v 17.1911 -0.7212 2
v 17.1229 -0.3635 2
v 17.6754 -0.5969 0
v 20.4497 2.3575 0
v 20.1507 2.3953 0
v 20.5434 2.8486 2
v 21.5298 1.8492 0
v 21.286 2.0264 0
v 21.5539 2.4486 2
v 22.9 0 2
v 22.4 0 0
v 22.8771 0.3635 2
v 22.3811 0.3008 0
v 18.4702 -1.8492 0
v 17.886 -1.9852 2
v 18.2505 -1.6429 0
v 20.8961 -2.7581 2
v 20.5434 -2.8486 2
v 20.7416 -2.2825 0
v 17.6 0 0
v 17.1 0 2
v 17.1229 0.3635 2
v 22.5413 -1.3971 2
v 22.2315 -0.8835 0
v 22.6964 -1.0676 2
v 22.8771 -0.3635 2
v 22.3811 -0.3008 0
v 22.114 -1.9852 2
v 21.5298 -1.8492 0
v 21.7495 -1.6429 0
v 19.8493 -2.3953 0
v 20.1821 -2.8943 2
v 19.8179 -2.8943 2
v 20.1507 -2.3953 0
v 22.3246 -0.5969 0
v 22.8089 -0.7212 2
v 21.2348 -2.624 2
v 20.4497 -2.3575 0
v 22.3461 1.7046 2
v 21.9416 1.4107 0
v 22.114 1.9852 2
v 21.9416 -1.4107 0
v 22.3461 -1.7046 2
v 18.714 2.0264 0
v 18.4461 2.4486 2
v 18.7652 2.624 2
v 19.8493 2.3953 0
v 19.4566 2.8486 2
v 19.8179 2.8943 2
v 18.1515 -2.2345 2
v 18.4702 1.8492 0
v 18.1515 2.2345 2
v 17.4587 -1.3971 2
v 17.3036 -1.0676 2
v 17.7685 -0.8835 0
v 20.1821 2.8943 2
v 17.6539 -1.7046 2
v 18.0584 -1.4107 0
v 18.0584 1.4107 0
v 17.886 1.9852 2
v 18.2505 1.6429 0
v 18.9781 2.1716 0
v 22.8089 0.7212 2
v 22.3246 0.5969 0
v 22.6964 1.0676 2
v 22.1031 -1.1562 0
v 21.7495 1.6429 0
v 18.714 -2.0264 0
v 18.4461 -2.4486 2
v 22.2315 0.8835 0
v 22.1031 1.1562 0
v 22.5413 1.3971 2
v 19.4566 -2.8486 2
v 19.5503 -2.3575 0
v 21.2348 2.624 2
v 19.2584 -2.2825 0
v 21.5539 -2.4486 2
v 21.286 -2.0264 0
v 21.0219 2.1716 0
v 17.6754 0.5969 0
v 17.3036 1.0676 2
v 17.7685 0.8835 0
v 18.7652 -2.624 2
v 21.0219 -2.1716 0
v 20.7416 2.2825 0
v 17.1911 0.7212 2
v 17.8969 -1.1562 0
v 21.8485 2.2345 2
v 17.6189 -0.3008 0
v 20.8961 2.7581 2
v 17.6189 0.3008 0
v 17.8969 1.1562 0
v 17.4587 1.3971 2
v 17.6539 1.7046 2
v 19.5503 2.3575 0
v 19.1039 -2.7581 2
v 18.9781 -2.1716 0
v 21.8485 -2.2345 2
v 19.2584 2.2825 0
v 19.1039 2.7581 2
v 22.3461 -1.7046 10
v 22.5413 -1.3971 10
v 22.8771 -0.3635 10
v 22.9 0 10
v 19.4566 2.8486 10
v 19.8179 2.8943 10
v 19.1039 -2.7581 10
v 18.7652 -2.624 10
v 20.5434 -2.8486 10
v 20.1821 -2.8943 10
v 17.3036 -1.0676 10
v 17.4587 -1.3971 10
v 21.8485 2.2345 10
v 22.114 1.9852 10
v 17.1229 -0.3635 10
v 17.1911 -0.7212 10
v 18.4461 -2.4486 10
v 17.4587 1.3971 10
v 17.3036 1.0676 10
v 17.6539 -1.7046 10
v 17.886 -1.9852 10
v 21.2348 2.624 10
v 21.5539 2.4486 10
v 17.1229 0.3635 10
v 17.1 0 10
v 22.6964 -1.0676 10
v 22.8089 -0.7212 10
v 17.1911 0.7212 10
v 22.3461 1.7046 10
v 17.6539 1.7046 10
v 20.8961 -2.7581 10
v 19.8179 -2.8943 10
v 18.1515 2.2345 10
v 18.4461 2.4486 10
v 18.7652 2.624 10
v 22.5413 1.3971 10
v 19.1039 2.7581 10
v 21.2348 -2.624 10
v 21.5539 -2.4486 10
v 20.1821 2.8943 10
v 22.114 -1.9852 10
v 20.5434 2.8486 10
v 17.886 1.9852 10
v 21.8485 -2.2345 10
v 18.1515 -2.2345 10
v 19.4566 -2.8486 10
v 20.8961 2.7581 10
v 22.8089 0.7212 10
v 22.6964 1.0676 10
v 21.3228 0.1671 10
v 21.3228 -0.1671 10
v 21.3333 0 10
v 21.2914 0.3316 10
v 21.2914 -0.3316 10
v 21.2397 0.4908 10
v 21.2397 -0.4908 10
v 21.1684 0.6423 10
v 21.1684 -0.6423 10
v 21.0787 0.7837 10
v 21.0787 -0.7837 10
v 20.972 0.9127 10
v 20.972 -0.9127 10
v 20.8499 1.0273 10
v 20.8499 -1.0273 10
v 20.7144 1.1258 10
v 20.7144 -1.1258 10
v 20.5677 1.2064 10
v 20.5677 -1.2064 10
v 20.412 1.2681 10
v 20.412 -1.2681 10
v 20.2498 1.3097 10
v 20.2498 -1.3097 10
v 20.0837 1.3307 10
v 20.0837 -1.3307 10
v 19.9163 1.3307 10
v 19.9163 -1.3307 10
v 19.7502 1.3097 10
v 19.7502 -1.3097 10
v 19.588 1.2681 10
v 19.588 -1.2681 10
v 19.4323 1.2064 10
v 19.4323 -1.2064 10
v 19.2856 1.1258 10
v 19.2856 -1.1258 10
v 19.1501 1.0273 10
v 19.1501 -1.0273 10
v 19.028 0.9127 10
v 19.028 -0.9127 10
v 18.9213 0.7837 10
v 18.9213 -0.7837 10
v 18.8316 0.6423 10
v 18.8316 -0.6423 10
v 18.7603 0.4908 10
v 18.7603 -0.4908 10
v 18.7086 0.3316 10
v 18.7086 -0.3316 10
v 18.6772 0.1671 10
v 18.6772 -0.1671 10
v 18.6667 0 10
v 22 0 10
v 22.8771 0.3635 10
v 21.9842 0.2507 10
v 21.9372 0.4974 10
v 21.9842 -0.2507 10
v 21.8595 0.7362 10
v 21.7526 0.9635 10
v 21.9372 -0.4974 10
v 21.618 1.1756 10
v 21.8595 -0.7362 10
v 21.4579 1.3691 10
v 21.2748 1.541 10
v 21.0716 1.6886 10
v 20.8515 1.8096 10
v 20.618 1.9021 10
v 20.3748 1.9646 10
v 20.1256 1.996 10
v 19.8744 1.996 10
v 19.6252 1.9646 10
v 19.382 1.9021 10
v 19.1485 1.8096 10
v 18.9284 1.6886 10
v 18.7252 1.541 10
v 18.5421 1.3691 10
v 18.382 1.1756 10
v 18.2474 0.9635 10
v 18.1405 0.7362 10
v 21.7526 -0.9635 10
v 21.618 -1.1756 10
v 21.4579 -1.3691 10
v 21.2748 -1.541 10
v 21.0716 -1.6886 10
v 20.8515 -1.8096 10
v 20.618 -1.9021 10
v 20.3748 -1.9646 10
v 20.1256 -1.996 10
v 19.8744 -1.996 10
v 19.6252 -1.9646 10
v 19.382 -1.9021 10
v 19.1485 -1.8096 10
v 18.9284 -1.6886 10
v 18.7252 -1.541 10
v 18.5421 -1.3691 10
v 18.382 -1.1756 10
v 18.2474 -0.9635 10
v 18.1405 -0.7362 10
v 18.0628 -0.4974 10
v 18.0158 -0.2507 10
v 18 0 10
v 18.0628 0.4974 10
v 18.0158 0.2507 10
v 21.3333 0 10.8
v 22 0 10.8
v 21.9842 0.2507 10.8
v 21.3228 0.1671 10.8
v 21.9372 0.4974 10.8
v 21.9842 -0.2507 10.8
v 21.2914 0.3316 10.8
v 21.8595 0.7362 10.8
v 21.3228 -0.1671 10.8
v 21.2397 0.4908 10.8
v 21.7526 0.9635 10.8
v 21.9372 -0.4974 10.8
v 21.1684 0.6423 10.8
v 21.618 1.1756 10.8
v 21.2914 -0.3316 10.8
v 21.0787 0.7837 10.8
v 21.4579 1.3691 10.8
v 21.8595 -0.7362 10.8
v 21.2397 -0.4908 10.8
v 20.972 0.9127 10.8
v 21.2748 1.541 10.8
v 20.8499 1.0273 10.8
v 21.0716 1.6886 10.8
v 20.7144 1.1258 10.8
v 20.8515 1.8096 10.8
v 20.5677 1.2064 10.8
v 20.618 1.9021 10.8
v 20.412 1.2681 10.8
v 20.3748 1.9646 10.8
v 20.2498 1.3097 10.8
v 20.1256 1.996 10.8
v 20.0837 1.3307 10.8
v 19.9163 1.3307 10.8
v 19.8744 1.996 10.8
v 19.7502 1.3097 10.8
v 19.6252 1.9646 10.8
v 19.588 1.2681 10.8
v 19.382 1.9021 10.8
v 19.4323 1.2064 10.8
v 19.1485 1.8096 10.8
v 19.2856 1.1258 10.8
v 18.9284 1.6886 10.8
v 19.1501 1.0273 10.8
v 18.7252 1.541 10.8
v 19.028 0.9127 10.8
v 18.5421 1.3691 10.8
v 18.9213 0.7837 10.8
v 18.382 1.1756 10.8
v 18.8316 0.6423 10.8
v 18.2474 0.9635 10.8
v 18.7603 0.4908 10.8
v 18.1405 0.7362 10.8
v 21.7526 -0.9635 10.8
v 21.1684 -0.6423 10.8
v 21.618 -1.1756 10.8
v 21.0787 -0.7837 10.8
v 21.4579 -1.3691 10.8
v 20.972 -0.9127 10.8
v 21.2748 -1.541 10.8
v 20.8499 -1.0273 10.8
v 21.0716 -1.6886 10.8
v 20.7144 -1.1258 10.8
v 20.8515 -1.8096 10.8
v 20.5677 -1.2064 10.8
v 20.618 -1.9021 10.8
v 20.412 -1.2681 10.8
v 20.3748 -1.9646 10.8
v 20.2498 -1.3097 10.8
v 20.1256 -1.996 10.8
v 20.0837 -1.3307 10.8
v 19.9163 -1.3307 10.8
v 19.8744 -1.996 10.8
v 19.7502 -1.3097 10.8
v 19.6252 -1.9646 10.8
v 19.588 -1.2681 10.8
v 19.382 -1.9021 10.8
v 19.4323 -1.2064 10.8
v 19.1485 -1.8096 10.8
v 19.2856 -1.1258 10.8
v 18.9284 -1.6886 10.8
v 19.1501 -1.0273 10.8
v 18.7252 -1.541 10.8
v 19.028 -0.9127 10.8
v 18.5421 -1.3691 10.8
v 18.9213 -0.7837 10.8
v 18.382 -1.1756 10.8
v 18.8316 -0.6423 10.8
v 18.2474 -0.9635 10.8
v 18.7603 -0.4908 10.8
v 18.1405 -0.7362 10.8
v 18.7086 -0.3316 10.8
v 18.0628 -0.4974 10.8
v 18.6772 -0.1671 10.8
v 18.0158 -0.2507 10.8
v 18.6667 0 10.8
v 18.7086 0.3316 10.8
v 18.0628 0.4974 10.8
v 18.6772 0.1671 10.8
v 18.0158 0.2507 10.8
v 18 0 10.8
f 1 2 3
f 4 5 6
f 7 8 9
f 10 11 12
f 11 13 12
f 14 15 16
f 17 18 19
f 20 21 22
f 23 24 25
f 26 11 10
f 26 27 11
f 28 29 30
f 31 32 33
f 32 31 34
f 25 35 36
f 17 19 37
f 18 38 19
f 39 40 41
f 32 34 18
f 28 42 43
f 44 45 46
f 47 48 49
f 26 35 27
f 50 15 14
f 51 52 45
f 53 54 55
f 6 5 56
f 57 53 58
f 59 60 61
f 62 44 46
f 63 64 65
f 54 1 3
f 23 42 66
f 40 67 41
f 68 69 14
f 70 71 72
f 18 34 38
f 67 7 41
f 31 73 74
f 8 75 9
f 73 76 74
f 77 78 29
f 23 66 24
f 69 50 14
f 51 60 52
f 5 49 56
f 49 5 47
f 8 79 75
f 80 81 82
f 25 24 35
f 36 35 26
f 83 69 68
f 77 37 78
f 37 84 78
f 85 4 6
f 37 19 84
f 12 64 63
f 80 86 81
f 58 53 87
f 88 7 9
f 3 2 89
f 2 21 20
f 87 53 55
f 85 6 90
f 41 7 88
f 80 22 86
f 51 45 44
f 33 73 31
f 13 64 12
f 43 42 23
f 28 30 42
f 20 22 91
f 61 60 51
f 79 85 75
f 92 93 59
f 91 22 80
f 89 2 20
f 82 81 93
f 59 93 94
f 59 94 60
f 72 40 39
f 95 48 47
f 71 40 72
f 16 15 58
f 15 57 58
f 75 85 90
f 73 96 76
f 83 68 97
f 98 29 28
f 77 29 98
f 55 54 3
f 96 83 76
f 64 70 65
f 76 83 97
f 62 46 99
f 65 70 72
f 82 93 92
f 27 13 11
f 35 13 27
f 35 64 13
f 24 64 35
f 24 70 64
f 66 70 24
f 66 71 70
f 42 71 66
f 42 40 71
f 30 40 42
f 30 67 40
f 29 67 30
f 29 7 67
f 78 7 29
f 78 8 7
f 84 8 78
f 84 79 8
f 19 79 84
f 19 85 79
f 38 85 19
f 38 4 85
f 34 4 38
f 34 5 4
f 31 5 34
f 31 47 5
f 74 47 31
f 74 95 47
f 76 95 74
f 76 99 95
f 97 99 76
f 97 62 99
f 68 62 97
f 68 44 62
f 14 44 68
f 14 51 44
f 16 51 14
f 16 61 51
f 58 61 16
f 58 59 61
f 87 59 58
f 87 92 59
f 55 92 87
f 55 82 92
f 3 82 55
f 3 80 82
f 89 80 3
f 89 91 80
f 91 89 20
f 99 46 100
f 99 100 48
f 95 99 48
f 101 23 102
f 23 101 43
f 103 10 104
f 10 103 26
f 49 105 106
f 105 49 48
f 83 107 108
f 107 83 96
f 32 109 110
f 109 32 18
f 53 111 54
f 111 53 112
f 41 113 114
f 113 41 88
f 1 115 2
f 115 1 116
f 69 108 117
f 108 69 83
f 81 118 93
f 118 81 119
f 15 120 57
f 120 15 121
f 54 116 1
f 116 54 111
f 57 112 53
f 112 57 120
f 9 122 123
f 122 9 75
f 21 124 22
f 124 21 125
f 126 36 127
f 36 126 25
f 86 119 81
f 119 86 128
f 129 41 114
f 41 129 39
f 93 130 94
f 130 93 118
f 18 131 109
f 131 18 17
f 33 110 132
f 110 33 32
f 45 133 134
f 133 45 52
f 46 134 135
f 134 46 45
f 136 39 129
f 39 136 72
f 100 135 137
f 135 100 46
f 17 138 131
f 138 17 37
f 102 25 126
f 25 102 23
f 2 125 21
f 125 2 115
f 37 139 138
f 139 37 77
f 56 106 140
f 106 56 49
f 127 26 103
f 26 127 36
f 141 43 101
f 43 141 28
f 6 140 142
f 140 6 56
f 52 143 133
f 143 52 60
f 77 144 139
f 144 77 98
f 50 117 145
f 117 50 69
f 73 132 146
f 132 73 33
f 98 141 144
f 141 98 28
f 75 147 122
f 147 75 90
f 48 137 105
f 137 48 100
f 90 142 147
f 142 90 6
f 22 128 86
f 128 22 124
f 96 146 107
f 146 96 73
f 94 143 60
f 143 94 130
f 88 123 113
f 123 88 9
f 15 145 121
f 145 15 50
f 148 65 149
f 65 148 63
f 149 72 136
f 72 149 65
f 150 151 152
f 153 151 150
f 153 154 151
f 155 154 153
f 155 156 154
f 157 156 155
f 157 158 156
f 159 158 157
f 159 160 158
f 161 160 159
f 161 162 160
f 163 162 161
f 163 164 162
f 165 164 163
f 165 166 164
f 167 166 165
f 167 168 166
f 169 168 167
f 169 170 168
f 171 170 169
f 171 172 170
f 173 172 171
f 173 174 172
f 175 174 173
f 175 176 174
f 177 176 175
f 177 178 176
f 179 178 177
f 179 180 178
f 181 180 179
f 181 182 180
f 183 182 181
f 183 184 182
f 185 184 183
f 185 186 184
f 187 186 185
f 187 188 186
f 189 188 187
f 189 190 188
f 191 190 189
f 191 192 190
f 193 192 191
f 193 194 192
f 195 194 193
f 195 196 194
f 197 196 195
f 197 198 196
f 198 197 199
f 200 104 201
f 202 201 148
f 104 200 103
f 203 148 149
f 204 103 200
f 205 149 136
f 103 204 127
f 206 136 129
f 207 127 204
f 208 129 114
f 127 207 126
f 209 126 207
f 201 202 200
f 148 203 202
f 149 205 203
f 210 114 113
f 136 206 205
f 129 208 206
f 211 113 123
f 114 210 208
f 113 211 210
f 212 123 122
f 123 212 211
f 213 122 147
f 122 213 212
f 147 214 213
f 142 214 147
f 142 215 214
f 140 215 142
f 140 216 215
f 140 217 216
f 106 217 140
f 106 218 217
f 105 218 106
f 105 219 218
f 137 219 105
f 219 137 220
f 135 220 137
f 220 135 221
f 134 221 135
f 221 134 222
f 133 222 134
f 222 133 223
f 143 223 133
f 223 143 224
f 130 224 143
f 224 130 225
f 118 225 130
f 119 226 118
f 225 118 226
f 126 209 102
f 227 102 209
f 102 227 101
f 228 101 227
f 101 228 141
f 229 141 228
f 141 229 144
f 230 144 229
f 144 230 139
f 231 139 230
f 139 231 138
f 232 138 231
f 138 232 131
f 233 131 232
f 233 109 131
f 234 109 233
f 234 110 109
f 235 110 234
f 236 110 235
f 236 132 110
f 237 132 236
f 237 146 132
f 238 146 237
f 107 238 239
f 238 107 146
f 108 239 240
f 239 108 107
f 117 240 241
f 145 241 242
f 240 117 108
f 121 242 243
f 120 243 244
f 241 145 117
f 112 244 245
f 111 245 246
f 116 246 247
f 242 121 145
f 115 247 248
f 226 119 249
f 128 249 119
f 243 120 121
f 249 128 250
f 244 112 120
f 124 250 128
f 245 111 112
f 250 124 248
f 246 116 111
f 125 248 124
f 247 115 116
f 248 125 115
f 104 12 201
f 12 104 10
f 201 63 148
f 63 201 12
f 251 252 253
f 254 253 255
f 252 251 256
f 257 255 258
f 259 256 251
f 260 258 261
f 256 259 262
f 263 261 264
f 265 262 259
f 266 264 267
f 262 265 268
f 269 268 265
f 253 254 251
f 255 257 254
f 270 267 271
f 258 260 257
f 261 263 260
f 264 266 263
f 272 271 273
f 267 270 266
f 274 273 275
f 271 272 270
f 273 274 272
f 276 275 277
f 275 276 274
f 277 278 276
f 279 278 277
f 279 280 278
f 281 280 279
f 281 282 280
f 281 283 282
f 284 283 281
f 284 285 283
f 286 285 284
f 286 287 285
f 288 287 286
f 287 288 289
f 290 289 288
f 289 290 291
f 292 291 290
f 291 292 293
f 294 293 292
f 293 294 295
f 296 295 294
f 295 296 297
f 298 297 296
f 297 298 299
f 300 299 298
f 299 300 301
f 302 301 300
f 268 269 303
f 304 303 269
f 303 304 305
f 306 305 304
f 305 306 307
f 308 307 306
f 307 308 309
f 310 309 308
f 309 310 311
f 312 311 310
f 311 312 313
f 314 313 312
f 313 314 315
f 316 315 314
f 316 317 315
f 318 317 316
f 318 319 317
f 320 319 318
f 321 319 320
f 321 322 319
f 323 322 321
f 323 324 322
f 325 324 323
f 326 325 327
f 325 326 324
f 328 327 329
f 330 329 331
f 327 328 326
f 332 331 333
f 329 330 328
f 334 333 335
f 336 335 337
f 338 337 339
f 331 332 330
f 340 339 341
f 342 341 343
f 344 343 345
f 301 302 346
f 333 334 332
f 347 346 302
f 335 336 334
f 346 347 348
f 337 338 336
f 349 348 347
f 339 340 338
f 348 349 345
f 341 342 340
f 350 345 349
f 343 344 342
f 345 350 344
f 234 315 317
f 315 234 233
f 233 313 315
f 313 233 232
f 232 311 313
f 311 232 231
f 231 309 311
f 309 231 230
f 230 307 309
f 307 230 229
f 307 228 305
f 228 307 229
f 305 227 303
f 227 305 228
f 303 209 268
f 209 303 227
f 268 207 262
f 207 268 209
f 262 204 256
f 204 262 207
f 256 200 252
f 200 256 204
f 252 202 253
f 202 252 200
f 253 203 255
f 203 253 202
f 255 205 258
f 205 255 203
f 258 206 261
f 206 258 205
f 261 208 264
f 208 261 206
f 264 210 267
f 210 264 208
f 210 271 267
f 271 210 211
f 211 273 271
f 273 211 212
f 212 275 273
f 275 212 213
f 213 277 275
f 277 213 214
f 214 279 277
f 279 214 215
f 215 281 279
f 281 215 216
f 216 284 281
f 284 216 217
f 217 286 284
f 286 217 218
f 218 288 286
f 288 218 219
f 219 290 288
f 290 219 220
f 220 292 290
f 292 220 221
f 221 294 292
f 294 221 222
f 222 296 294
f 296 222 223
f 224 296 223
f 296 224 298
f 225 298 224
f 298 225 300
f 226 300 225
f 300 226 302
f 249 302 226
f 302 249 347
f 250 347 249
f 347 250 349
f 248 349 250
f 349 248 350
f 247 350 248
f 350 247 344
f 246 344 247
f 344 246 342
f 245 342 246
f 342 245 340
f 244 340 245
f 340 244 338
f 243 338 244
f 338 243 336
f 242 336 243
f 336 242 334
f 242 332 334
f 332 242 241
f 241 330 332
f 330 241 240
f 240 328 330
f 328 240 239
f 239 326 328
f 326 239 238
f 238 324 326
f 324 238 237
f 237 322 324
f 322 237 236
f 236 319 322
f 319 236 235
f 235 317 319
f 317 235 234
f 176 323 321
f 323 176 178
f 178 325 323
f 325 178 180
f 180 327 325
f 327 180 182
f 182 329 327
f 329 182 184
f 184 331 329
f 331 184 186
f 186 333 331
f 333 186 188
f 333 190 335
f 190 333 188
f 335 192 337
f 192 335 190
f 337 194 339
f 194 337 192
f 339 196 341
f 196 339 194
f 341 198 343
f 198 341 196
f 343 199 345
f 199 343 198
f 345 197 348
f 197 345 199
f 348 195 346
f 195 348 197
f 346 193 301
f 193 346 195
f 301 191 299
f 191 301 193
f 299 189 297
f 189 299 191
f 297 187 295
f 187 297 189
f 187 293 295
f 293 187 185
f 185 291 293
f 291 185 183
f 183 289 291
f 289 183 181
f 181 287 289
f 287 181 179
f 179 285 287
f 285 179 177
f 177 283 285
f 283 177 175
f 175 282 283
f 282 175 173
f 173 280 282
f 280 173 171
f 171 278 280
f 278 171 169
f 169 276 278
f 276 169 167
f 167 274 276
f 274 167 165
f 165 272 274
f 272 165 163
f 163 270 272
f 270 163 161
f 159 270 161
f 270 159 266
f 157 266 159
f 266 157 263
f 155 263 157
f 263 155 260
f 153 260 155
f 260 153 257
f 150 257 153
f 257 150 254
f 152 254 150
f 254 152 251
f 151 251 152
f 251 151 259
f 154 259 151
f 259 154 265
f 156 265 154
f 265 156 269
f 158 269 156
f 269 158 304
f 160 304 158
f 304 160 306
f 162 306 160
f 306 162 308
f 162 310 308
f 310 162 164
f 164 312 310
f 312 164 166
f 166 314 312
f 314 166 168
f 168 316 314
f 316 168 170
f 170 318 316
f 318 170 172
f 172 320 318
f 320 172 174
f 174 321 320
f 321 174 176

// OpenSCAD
// file: ../util/Star.scad
// points = number of points (minimum 3)
// outer  = radius to outer points
// inner  = radius to inner points
module Star(points, outer, inner) {
	
	// polar to cartesian: radius/angle to x/y
	function x(r, a) = r * cos(a);
	function y(r, a) = r * sin(a);
	
	// angular width of each pie slice of the star
	increment = 360/points;
	
	union() {
		for (p = [0 : points-1]) {
			
			// outer is outer point p
			// inner is inner point following p
			// next is next outer point following p

			x_outer = x(outer, increment * p);
            y_outer = y(outer, increment * p);
            x_inner = x(inner, (increment * p) + (increment/2));
            y_inner = y(inner, (increment * p) + (increment/2));
            x_next  = x(outer, increment * (p+1));
            y_next  = y(outer, increment * (p+1));
            polygon(
                points = [
                    [x_outer, y_outer],
                    [x_inner, y_inner],
                    [x_next, y_next],
                    [0, 0]
                ],
                paths  = [[0, 1, 2, 3]]
            );
        }
    }
}

module Pentagram(outer) {
    inner = outer*sqrt(3.5-1.5*sqrt(5));
    Star(5,outer, inner);
}
// main file
include <../util/Star.scad>;

pegBaseHeight = 2;
pegTopHeight = 8;
symbolHeight = 0.8;

pegTopD = 5.8;
pegBaseD = 4.8;
symbolD = 4;

pegSpacing = 10;

module Peg(pegColor, topSymbol){
    color(pegColor)
    // linear_extrude(pegBaseHeight)
    cylinder(pegBaseHeight, d1=pegBaseD, d2=pegTopD, $fn=50);
    // circle(d=pegBaseD, $fn=50);

    color(pegColor)
    translate([0,0,pegBaseHeight])
    linear_extrude(pegTopHeight)
    circle(d=pegTopD, $fn=50);
}

// translate([pegSpacing * 0,0]){
//     pegColor = "green";
//     Peg(pegColor);
//     color(pegColor)
//     translate([0,0,pegBaseHeight + pegTopHeight])
//     linear_extrude(symbolHeight)
//     circle (d=symbolD, $fn=50);
// }

// translate([pegSpacing,0]){
//     pegColor = "orange";
//     Peg(pegColor);

//     color(pegColor)
//     translate([0,0,pegBaseHeight + pegTopHeight])
//     linear_extrude(symbolHeight)
//     circle (d=symbolD, $fn=6);
// }

translate([pegSpacing * 2,0]){
    pegColor = "#f0f";
    Peg(pegColor);

    color(pegColor)
    translate([0,0,pegBaseHeight + pegTopHeight])
    linear_extrude(symbolHeight)
    difference(){
        circle (d=symbolD, $fn=50);
        circle (d=symbolD - symbolD / 3, $fn=50);
    }
}

// translate([pegSpacing * 3,0]){
//     pegColor = "#55f";
//     Peg(pegColor);

//     color(pegColor)
//     translate([0,0,pegBaseHeight + pegTopHeight])
//     linear_extrude(symbolHeight)
//     Star(6, symbolD/2, symbolD/2 - symbolD/4.5);
// }

// translate([pegSpacing * 4,0]){
//     pegColor = "yellow";
//     Peg(pegColor);

//     color(pegColor)
//     translate([0,0,pegBaseHeight + pegTopHeight])
//     linear_extrude(symbolHeight)
//     Star(24, symbolD/2, symbolD/2 - symbolD/12);
// }

// translate([pegSpacing * 5,0]){
//     pegColor = "#f33";
//     Peg(pegColor);

//     color(pegColor)
//     translate([0,0,pegBaseHeight + pegTopHeight])
//     linear_extrude(symbolHeight)
//     Star(12, symbolD/2, symbolD/2 - symbolD/6);
// }
